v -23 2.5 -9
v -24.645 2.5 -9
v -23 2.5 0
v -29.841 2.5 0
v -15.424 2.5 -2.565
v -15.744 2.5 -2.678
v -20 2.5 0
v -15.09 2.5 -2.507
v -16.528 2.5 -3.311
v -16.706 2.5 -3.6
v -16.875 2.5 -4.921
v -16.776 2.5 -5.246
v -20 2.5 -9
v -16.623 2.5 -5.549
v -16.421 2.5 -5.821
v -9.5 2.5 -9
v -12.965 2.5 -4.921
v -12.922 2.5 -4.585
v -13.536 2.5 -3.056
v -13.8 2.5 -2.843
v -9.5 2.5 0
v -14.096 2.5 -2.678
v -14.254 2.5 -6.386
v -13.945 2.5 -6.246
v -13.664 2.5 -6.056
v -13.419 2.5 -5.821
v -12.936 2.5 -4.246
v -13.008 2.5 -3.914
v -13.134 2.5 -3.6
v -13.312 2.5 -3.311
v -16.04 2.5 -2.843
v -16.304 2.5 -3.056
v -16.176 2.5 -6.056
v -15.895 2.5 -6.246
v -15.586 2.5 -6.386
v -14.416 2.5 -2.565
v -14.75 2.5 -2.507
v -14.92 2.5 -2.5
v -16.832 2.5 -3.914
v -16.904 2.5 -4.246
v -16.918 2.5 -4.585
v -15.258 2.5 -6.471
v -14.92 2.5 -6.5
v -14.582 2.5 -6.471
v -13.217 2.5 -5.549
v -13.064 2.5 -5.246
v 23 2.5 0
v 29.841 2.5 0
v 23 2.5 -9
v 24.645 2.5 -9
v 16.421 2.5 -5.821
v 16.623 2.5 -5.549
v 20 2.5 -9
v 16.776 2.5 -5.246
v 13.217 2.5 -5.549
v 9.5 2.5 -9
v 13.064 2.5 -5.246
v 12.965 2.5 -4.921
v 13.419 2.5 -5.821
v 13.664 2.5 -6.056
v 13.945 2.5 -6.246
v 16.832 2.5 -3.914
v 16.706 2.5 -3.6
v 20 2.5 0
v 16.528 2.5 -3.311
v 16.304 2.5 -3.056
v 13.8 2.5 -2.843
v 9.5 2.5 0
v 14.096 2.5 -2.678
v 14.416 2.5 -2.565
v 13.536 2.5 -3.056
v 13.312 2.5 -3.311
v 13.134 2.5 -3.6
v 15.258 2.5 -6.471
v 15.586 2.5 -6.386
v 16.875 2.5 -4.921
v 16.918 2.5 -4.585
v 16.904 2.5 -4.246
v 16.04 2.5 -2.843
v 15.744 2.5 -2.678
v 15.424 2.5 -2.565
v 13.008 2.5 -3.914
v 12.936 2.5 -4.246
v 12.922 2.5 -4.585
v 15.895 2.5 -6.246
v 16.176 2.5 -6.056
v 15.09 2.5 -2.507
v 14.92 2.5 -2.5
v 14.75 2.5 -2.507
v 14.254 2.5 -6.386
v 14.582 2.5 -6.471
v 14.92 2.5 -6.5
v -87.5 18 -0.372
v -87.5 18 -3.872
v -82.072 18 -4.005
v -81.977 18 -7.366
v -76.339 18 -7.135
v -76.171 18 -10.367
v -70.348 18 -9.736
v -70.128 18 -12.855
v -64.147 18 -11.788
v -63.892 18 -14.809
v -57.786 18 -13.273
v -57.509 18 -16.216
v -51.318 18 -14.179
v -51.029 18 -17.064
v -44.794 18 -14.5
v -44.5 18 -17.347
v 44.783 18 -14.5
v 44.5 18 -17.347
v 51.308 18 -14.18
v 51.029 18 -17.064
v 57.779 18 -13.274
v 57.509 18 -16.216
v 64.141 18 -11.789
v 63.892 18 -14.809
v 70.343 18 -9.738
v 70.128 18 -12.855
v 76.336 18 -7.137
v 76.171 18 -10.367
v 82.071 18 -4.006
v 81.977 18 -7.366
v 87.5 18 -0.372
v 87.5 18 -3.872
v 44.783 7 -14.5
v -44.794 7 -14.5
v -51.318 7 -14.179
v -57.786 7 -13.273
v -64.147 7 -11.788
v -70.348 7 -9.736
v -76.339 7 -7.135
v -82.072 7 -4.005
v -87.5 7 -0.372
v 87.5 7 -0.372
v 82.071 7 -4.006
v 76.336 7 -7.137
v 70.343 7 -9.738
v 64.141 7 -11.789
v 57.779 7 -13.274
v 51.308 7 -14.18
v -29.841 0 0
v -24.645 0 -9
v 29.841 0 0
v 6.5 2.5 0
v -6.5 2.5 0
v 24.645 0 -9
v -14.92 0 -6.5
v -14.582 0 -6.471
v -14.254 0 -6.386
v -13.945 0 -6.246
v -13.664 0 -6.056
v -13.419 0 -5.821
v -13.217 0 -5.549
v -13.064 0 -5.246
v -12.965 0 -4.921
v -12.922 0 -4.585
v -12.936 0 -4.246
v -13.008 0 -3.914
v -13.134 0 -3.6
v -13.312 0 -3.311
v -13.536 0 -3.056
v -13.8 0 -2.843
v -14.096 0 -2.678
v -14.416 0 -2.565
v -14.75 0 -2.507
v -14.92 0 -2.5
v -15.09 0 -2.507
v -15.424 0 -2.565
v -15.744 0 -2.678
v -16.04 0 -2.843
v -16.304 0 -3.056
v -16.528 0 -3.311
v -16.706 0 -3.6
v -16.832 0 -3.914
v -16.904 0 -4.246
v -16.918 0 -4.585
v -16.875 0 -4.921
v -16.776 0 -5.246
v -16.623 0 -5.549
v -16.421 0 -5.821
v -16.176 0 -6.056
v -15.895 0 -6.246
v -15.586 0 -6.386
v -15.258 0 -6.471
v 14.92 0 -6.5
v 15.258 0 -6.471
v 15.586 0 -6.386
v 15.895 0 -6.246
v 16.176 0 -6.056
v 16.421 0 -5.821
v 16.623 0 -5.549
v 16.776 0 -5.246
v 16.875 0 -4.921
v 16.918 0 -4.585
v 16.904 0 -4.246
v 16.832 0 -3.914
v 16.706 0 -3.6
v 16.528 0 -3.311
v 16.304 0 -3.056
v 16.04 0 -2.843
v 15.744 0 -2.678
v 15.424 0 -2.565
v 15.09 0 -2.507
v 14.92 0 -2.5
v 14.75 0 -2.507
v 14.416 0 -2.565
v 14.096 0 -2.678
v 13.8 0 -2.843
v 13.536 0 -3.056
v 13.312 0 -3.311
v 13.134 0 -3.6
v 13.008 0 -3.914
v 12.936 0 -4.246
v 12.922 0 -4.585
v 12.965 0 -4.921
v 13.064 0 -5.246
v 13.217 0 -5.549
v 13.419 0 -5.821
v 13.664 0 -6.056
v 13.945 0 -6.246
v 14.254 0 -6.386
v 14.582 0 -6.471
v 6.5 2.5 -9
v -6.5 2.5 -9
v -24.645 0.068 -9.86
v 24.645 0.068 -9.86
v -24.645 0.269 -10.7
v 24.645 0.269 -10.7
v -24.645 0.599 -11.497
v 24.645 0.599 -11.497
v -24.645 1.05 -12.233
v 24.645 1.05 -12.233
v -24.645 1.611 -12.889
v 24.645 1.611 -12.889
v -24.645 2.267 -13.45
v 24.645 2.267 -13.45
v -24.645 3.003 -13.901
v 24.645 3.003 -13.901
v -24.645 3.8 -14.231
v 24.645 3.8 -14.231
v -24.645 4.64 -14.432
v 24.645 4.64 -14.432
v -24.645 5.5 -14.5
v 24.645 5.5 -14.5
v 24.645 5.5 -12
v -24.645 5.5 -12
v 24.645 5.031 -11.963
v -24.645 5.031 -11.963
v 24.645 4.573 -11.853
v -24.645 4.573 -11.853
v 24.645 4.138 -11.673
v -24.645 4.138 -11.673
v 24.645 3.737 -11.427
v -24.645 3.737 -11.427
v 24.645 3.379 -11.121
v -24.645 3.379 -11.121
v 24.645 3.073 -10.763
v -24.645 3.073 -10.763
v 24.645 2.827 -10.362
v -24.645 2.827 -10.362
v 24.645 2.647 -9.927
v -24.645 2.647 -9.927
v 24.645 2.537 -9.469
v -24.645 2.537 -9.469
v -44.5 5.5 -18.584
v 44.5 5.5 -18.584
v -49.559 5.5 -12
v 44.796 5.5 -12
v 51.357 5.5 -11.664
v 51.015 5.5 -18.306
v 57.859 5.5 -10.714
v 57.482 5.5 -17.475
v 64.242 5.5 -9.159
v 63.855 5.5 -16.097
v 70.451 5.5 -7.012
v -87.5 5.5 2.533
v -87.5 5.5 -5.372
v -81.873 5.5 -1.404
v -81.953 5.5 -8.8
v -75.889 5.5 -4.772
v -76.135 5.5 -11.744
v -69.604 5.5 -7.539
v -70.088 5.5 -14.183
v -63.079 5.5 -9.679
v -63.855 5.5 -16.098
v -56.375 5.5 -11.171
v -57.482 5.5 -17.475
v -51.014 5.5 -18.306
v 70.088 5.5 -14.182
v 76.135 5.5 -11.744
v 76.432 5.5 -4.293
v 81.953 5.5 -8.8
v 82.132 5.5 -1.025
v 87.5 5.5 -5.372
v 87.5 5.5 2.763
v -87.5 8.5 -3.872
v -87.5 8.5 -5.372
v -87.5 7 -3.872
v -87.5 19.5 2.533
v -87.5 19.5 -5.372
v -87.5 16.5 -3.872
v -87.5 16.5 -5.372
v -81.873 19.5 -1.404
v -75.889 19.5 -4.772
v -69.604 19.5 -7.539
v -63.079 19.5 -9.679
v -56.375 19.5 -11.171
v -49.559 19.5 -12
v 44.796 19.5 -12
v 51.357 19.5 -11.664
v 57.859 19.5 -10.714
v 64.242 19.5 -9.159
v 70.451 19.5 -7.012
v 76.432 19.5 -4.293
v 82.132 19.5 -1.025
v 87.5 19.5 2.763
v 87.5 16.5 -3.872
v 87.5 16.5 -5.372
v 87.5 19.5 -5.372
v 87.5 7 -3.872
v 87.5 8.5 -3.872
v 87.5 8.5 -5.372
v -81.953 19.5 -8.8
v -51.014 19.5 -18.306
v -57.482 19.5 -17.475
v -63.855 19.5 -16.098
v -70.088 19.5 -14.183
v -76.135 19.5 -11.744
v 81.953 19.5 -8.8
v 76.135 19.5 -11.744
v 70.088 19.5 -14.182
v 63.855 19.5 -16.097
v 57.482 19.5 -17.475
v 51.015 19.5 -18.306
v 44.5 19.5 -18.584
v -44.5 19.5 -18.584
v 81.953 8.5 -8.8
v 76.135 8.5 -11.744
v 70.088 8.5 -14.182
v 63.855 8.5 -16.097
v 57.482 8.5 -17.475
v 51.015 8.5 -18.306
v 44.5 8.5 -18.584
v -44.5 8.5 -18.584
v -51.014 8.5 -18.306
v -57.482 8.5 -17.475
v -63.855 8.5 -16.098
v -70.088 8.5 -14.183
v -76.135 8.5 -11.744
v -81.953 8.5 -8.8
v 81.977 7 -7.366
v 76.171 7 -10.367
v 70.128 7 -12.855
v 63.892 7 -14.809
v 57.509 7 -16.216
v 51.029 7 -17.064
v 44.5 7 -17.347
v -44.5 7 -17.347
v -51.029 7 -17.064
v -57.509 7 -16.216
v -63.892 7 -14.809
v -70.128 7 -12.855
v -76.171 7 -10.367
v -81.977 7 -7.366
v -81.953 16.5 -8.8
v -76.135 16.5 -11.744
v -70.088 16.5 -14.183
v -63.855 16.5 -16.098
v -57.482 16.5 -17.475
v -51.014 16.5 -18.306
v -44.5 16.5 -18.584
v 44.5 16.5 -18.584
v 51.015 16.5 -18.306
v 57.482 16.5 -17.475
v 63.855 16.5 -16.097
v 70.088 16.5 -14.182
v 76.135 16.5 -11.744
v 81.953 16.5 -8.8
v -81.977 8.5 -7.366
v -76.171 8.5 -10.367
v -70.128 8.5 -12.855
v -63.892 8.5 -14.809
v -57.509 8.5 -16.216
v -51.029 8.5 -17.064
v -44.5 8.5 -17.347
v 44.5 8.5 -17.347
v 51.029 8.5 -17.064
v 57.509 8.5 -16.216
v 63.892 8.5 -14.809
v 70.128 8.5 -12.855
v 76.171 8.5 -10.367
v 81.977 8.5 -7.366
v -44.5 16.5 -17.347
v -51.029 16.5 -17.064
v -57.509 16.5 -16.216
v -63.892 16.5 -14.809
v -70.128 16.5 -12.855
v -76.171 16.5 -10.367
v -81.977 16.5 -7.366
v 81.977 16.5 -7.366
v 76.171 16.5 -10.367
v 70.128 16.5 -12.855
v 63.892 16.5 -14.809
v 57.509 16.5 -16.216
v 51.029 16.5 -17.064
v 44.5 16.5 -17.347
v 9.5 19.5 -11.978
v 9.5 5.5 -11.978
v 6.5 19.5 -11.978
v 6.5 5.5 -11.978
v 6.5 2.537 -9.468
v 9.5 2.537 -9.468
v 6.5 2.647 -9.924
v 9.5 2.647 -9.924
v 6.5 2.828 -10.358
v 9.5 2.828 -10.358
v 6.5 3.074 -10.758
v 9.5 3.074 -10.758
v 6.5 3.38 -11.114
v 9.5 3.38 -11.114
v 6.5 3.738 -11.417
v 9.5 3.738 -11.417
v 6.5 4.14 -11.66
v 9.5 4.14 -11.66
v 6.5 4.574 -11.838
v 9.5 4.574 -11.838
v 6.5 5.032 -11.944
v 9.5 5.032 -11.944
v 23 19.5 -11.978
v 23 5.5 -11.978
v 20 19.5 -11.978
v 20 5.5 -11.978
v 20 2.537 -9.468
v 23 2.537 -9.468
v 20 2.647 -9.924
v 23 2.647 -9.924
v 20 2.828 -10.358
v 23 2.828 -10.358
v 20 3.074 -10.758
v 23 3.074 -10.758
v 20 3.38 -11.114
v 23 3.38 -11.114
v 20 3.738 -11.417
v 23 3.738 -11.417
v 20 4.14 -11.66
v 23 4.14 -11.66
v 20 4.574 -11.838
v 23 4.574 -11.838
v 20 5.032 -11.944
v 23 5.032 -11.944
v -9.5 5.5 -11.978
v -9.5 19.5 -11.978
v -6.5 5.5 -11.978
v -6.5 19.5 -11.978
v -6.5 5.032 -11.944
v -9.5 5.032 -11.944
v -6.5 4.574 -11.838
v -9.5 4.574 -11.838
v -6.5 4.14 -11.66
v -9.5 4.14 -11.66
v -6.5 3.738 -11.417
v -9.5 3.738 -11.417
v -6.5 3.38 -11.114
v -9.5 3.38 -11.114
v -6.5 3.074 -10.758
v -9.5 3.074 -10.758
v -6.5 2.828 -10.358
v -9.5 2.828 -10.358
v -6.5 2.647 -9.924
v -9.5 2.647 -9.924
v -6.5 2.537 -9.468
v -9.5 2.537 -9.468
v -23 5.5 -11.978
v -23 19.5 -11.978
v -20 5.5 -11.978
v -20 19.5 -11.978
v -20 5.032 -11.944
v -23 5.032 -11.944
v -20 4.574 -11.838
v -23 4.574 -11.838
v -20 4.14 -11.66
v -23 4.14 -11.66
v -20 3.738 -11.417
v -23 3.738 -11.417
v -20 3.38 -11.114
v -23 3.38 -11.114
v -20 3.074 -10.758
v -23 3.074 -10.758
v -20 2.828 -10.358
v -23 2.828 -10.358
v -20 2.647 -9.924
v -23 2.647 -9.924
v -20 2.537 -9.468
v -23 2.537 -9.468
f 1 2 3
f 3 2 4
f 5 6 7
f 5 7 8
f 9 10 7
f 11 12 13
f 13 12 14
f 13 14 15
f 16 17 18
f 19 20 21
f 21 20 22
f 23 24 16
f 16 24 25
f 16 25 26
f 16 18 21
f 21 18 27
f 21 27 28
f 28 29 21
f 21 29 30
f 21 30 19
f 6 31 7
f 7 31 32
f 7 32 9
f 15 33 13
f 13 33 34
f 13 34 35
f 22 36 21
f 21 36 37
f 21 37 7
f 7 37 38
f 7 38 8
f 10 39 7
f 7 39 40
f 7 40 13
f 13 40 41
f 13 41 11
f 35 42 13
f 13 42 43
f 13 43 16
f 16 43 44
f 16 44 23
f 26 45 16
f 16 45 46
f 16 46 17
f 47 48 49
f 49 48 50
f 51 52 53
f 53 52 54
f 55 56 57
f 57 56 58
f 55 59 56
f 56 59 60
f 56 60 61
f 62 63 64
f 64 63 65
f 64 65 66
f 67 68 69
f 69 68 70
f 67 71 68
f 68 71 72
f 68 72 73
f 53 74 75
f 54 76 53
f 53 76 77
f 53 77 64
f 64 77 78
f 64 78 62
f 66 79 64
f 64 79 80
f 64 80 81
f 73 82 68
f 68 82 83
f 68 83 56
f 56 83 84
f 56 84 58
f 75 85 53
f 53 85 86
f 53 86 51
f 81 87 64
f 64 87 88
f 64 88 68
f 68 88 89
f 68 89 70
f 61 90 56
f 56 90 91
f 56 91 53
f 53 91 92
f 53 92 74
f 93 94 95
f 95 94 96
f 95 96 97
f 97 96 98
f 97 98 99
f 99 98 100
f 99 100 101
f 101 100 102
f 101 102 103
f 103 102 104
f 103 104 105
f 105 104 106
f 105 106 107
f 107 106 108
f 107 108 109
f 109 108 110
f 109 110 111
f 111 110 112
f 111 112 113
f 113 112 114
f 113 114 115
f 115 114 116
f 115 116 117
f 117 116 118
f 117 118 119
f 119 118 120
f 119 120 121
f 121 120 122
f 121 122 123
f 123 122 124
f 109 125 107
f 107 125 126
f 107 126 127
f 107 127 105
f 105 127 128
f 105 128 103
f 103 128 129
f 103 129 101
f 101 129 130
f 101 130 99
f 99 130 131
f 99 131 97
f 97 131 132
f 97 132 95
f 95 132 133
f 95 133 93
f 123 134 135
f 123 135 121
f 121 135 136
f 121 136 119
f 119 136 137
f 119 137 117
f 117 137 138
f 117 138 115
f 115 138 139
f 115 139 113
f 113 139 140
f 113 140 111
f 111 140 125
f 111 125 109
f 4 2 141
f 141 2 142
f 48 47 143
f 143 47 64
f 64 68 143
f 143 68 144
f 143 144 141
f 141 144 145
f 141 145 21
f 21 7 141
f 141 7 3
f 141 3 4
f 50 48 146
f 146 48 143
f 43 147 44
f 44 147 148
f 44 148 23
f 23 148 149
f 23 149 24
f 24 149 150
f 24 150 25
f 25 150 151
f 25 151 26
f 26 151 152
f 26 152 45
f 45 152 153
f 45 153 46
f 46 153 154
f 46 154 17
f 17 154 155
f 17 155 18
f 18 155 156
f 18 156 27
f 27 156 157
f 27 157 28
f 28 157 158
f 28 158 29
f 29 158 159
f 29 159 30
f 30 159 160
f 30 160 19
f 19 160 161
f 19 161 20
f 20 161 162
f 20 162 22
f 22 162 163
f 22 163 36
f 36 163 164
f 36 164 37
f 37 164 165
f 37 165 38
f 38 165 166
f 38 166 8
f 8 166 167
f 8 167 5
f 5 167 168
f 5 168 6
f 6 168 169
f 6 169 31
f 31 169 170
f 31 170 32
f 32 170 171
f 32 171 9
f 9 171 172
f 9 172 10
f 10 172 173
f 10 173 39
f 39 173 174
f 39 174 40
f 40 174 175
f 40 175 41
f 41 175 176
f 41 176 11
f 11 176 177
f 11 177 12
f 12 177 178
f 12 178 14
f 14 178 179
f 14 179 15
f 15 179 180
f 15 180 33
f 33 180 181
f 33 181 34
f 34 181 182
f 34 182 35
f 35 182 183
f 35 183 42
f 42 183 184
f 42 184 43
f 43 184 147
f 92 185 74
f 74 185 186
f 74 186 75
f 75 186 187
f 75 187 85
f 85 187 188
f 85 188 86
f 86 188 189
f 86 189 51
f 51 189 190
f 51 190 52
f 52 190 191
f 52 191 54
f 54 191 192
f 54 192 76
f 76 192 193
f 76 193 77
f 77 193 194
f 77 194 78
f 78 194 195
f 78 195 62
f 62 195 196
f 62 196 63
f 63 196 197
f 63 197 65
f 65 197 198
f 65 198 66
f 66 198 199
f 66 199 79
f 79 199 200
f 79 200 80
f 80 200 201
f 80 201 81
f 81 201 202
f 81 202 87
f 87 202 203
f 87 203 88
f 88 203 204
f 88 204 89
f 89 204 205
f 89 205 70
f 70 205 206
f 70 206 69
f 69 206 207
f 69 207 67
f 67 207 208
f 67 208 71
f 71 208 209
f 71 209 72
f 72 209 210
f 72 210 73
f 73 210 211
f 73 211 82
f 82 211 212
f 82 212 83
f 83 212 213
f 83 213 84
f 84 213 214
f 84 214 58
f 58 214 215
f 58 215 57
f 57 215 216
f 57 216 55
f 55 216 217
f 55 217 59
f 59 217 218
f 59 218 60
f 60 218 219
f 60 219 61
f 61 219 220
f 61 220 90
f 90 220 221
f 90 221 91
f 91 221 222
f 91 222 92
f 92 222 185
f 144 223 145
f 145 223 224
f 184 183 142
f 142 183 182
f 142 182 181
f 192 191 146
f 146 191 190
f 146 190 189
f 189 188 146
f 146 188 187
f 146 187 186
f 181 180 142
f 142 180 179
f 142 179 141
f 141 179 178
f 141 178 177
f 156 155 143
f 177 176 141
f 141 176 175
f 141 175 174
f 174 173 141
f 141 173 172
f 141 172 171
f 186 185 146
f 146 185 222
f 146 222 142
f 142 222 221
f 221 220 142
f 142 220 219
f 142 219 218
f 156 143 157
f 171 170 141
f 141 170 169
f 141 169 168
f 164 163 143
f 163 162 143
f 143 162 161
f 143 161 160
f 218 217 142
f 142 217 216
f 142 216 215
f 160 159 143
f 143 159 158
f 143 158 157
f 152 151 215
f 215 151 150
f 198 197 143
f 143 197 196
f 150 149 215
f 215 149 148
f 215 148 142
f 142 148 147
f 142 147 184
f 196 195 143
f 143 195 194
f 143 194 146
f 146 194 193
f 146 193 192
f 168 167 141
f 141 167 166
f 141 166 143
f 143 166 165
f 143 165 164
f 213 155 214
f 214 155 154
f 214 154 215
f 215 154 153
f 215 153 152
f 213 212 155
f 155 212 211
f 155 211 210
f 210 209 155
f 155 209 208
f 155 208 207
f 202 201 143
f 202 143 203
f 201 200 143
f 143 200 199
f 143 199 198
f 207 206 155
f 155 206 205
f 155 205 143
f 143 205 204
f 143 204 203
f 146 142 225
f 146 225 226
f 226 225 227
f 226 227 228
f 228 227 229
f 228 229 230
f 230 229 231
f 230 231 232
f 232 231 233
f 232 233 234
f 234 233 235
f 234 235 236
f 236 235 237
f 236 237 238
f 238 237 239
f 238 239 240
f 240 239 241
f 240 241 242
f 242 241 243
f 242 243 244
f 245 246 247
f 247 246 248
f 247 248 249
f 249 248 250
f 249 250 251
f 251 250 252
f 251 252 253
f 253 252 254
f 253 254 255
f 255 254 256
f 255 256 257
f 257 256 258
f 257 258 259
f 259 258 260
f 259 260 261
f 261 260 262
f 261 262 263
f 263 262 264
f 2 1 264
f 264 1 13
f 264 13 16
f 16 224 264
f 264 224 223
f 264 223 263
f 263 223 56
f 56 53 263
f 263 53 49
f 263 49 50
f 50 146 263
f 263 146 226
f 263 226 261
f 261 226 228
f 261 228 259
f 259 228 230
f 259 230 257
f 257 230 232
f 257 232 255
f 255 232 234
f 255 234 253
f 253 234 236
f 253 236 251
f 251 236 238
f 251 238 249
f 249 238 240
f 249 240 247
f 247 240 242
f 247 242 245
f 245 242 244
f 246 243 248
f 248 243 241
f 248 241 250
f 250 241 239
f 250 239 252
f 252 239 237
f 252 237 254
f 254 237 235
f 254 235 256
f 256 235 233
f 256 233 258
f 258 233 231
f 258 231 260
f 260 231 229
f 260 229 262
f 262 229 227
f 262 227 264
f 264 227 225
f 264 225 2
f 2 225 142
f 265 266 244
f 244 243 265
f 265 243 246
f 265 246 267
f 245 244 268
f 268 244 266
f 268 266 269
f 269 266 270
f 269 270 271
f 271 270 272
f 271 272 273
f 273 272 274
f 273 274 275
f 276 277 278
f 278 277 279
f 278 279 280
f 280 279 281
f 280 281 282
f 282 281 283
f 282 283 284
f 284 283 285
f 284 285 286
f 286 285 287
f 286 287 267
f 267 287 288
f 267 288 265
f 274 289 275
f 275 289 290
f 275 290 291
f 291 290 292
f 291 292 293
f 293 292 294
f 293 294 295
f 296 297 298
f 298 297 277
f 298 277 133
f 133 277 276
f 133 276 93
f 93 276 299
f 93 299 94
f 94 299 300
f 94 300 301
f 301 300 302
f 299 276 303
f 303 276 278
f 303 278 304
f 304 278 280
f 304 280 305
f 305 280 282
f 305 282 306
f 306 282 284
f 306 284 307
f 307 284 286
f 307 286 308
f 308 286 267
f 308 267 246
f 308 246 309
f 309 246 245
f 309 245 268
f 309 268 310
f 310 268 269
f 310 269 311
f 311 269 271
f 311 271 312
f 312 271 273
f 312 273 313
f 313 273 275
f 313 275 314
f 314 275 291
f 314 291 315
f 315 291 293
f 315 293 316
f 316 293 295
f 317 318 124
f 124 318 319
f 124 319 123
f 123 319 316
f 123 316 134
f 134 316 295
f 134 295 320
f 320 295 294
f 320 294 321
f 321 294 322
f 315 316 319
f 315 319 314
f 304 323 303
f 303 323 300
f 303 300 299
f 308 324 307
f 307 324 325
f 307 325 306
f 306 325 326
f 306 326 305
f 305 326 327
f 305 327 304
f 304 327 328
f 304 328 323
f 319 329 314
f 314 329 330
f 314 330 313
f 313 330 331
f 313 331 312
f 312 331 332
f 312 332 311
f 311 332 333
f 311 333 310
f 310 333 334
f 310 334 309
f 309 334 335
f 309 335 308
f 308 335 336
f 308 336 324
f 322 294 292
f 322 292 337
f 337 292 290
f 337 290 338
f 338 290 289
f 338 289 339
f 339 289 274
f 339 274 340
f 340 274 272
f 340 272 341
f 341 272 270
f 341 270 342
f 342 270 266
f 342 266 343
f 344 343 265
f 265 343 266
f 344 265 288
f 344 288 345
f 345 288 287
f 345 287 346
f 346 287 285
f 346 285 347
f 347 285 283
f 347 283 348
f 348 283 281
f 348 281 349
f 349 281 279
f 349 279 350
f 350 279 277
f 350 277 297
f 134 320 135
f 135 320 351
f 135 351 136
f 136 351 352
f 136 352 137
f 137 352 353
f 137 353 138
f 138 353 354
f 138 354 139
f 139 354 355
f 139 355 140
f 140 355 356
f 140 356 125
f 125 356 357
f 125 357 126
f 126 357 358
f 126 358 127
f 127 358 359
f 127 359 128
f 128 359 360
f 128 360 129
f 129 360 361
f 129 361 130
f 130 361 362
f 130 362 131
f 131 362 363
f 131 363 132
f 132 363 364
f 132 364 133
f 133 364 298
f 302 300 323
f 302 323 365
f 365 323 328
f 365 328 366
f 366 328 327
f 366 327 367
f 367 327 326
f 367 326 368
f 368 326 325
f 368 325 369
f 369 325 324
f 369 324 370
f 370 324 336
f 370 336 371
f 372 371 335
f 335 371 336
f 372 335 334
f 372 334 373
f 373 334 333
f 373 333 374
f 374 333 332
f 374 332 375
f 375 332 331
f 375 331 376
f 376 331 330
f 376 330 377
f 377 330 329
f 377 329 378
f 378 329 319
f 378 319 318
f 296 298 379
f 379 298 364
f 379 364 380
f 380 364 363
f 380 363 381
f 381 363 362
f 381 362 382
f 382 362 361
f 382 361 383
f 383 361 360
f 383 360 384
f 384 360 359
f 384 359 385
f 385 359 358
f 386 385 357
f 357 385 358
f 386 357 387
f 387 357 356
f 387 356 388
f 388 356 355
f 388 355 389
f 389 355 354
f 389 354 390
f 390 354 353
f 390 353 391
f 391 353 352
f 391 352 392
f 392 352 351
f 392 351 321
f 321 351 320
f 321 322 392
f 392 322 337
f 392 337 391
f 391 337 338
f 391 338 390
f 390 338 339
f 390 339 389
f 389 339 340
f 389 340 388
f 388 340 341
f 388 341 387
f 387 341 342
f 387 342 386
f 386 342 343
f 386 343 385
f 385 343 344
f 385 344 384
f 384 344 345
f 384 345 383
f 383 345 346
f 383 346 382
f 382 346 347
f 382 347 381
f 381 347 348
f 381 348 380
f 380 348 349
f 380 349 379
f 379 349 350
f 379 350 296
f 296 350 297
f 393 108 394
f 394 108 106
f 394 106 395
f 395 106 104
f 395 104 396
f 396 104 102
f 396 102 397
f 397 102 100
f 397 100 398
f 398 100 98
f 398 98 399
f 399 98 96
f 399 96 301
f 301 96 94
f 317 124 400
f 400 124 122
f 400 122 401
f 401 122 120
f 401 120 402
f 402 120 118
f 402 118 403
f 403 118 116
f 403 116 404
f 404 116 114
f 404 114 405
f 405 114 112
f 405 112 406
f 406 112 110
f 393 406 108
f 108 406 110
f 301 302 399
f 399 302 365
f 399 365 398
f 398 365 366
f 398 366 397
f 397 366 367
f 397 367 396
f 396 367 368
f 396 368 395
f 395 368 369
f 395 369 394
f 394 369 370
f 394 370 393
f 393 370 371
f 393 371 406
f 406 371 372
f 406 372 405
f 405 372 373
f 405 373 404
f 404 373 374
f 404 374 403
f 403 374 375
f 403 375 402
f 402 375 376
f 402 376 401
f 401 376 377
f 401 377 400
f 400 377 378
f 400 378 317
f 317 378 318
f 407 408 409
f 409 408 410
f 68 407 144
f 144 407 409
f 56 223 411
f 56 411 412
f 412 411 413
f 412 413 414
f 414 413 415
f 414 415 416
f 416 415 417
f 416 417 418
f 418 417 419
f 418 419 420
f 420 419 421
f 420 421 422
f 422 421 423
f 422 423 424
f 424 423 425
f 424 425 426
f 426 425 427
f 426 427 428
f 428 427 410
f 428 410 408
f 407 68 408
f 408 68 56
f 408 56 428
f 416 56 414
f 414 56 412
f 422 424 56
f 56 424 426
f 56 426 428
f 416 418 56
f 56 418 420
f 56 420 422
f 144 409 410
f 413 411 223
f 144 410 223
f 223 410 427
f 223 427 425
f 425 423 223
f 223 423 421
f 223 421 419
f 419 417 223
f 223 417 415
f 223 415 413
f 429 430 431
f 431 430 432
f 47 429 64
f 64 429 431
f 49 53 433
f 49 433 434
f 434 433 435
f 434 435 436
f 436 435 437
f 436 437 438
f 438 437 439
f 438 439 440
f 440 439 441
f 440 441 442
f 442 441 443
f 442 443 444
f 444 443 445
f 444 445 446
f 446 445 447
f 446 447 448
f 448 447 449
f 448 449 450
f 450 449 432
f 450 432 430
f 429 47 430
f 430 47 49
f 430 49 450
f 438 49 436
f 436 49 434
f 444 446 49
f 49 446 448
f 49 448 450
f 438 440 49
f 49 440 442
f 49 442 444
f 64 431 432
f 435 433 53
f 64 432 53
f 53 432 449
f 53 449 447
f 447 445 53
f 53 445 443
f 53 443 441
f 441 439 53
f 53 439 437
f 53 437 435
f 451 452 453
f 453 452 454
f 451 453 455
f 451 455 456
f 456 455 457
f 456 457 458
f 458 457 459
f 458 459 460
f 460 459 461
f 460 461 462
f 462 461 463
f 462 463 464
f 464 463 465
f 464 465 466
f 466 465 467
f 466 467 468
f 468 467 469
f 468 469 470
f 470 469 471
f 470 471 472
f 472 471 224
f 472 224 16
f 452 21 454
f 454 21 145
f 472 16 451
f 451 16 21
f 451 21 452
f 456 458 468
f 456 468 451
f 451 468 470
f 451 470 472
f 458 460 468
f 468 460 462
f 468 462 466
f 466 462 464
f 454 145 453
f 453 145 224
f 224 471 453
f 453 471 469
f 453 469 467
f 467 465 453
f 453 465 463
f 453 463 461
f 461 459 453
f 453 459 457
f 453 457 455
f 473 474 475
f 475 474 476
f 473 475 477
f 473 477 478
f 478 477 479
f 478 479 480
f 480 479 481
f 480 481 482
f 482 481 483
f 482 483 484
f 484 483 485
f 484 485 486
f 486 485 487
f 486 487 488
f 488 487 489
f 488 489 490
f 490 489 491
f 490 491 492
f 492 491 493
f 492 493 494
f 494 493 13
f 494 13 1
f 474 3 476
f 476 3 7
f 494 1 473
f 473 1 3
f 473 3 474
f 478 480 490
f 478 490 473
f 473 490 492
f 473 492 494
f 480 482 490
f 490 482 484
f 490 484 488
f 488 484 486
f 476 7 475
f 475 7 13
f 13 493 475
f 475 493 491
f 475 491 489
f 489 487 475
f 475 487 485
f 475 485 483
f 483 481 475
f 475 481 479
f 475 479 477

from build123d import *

# Parameters (mm, degrees)
SKETCH1_R                = 2
BOSS_EXTRUDE1_DEPTH      = 2.5
BOSS_EXTRUDE2_DEPTH      = 24.645
BOSS_EXTRUDE2_DEPTH_BACK = 24.645
SKETCH4_W                = 49.29
SKETCH4_H                = 2.5
BOSS_EXTRUDE4_DEPTH      = 14
BOSS_EXTRUDE6_DEPTH      = 1.5
BOSS_EXTRUDE7_START      = 12.5
BOSS_EXTRUDE7_DEPTH      = 1.5
BOSS_EXTRUDE8_START      = 1.5
BOSS_EXTRUDE8_DEPTH      = 1.5
BOSS_EXTRUDE9_START      = 11
BOSS_EXTRUDE9_DEPTH      = 1.5
BOSS_EXTRUDE10_START     = 6.5
BOSS_EXTRUDE10_DEPTH     = 3
BOSS_EXTRUDE11_START     = 20
BOSS_EXTRUDE11_DEPTH     = 3


with BuildPart() as part:
    # Sketch1 → Boss-Extrude1 (new body)
    with BuildSketch(Plane(origin=(0, 0, 0), x_dir=(1, 0, 0), z_dir=(0, 1, 0))):
        Polygon((-29.841152423, 0), (-24.645, 9), (24.645, 9), (29.841152423, 0), align=None)
        with Locations(Location((-14.92, 4.5, 0), (0, 0, 270))):
            Circle(SKETCH1_R, mode=Mode.SUBTRACT)
        with Locations(Location((14.92, 4.5, 0), (0, 0, 270))):
            Circle(SKETCH1_R, mode=Mode.SUBTRACT)
    extrude(amount=BOSS_EXTRUDE1_DEPTH)

    # Sketch3 → Boss-Extrude2 (add, two sides: drawn at the far end of the back side and taken through both)
    with BuildSketch(Plane(origin=(0, 0, 0), x_dir=(0, 0, -1), z_dir=(1, 0, 0)).offset(-BOSS_EXTRUDE2_DEPTH_BACK)):
        with BuildLine():
            Line((9, 0), (9, 2.5))
            ThreePointArc((9, 2.5), (11.121320344, 3.378679656), (12, 5.5))
            Line((12, 5.5), (14.5, 5.5))
            ThreePointArc((14.5, 5.5), (12.889087297, 1.610912703), (9, 0))
        make_face()
    extrude(amount=BOSS_EXTRUDE2_DEPTH + BOSS_EXTRUDE2_DEPTH_BACK)

    # Sketch4 → Boss-Extrude4 (add)
    with BuildSketch(Plane(origin=(0, 5.5, 0), x_dir=(1, 0, 0), z_dir=(0, 1, 0))):
        with BuildLine():
            Line((-49.558586772, 12), (-24.645, 12))
            Line((-24.645, 12), (-24.645, 14.5))
            Line((-24.645, 14.5), (-44.793833293, 14.5))
            ThreePointArc((-44.793833293, 14.5), (-67.270294591, 10.832042119), (-87.5, 0.372393629))
            Line((-87.5, 0.372393629), (-87.5, -2.532989082))
            ThreePointArc((-87.5, -2.532989082), (-69.603961511, 7.539151784), (-49.558586772, 12))
        make_face()
        with Locations((0, 13.25)):
            Rectangle(SKETCH4_W, SKETCH4_H)
        with BuildLine():
            Line((24.645, 12), (44.795929756, 12))
            ThreePointArc((44.795929756, 12), (67.371893328, 8.158628084), (87.5, -2.763349356))
            Line((87.5, -2.763349356), (87.5, 0.372340835))
            ThreePointArc((87.5, 0.372340835), (67.265225258, 10.833674125), (44.783151118, 14.5))
            Line((44.783151118, 14.5), (24.645, 14.5))
            Line((24.645, 14.5), (24.645, 12))
        make_face()
    extrude(amount=BOSS_EXTRUDE4_DEPTH)

    # Sketch4<4> → Boss-Extrude6 (add)
    with BuildSketch(Plane(origin=(0, 5.5, 0), x_dir=(1, 0, 0), z_dir=(0, 1, 0))):
        with BuildLine():
            ThreePointArc((44.783151118, 14.5), (67.265225258, 10.833674125), (87.5, 0.372340835))
            Line((87.5, 0.372340835), (87.5, 3.872340835))
            ThreePointArc((87.5, 3.872340835), (67.030937137, 13.899537079), (44.500036985, 17.347106846))
            Line((44.500036985, 17.347106846), (-44.499963015, 17.347150533))
            ThreePointArc((-44.499963015, 17.347150533), (-67.030900409, 13.89959402), (-87.5, 3.872393629))
            Line((-87.5, 3.872393629), (-87.5, 0.372393629))
            ThreePointArc((-87.5, 0.372393629), (-67.270294591, 10.832042119), (-44.793833293, 14.5))
            Line((-44.793833293, 14.5), (-24.645, 14.5))
            Line((-24.645, 14.5), (24.645, 14.5))
            Line((24.645, 14.5), (44.783151118, 14.5))
        make_face()
        with BuildLine():
            ThreePointArc((87.5, 3.872340835), (67.030937113, 13.899537086), (44.500036985, 17.347106846))
            Line((44.500036985, 17.347106846), (-44.499963015, 17.347150533))
            ThreePointArc((-44.499963015, 17.347150533), (-67.030900409, 13.89959402), (-87.5, 3.872393629))
            Line((-87.5, 3.872393629), (-87.5, 5.372393629))
            ThreePointArc((-87.5, 5.372393629), (-66.991859053, 15.206396924), (-44.499962408, 18.583681514))
            Line((-44.499962408, 18.583681514), (44.500037592, 18.583637828))
            ThreePointArc((44.500037592, 18.583637828), (66.991896325, 15.206339771), (87.5, 5.372340835))
            Line((87.5, 5.372340835), (87.5, 3.872340835))
        make_face()
    extrude(amount=BOSS_EXTRUDE6_DEPTH)

    # Sketch4<5> → Boss-Extrude7 (add)
    with BuildSketch(Plane(origin=(0, 5.5, 0), x_dir=(1, 0, 0), z_dir=(0, 1, 0)).offset(BOSS_EXTRUDE7_START)):
        with BuildLine():
            ThreePointArc((44.783151118, 14.5), (67.265225258, 10.833674125), (87.5, 0.372340835))
            Line((87.5, 0.372340835), (87.5, 3.872340835))
            ThreePointArc((87.5, 3.872340835), (67.030937137, 13.899537079), (44.500036985, 17.347106846))
            Line((44.500036985, 17.347106846), (-44.499963015, 17.347150533))
            ThreePointArc((-44.499963015, 17.347150533), (-67.030900409, 13.89959402), (-87.5, 3.872393629))
            Line((-87.5, 3.872393629), (-87.5, 0.372393629))
            ThreePointArc((-87.5, 0.372393629), (-67.270294591, 10.832042119), (-44.793833293, 14.5))
            Line((-44.793833293, 14.5), (-24.645, 14.5))
            Line((-24.645, 14.5), (24.645, 14.5))
            Line((24.645, 14.5), (44.783151118, 14.5))
        make_face()
        with BuildLine():
            ThreePointArc((87.5, 3.872340835), (67.030937113, 13.899537086), (44.500036985, 17.347106846))
            Line((44.500036985, 17.347106846), (-44.499963015, 17.347150533))
            ThreePointArc((-44.499963015, 17.347150533), (-67.030900409, 13.89959402), (-87.5, 3.872393629))
            Line((-87.5, 3.872393629), (-87.5, 5.372393629))
            ThreePointArc((-87.5, 5.372393629), (-66.991859053, 15.206396924), (-44.499962408, 18.583681514))
            Line((-44.499962408, 18.583681514), (44.500037592, 18.583637828))
            ThreePointArc((44.500037592, 18.583637828), (66.991896325, 15.206339771), (87.5, 5.372340835))
            Line((87.5, 5.372340835), (87.5, 3.872340835))
        make_face()
    extrude(amount=BOSS_EXTRUDE7_DEPTH)

    # Sketch4<6> → Boss-Extrude8 (add)
    with BuildSketch(Plane(origin=(0, 5.5, 0), x_dir=(1, 0, 0), z_dir=(0, 1, 0)).offset(BOSS_EXTRUDE8_START)):
        with BuildLine():
            ThreePointArc((87.5, 3.872340835), (67.030937113, 13.899537086), (44.500036985, 17.347106846))
            Line((44.500036985, 17.347106846), (-44.499963015, 17.347150533))
            ThreePointArc((-44.499963015, 17.347150533), (-67.030900409, 13.89959402), (-87.5, 3.872393629))
            Line((-87.5, 3.872393629), (-87.5, 5.372393629))
            ThreePointArc((-87.5, 5.372393629), (-66.991859053, 15.206396924), (-44.499962408, 18.583681514))
            Line((-44.499962408, 18.583681514), (44.500037592, 18.583637828))
            ThreePointArc((44.500037592, 18.583637828), (66.991896325, 15.206339771), (87.5, 5.372340835))
            Line((87.5, 5.372340835), (87.5, 3.872340835))
        make_face()
    extrude(amount=BOSS_EXTRUDE8_DEPTH)

    # Sketch4<8> → Boss-Extrude9 (add)
    with BuildSketch(Plane(origin=(0, 5.5, 0), x_dir=(1, 0, 0), z_dir=(0, 1, 0)).offset(BOSS_EXTRUDE9_START)):
        with BuildLine():
            ThreePointArc((87.5, 3.872340835), (67.030937113, 13.899537086), (44.500036985, 17.347106846))
            Line((44.500036985, 17.347106846), (-44.499963015, 17.347150533))
            ThreePointArc((-44.499963015, 17.347150533), (-67.030900409, 13.89959402), (-87.5, 3.872393629))
            Line((-87.5, 3.872393629), (-87.5, 5.372393629))
            ThreePointArc((-87.5, 5.372393629), (-66.991859053, 15.206396924), (-44.499962408, 18.583681514))
            Line((-44.499962408, 18.583681514), (44.500037592, 18.583637828))
            ThreePointArc((44.500037592, 18.583637828), (66.991896325, 15.206339771), (87.5, 5.372340835))
            Line((87.5, 5.372340835), (87.5, 3.872340835))
        make_face()
    extrude(amount=BOSS_EXTRUDE9_DEPTH)

    # Sketch5 → Boss-Extrude10 (add)
    with BuildSketch(Plane(origin=(0, 0, 0), x_dir=(0, 0, -1), z_dir=(1, 0, 0)).offset(BOSS_EXTRUDE10_START)):
        with BuildLine():
            Line((11.977989331, 19.5), (0, 2.5))
            Line((0, 2.5), (9, 2.5))
            ThreePointArc((9, 2.5), (11.113552723, 3.380024256), (11.977989331, 5.5))
            Line((11.977989331, 5.5), (11.977989331, 19.5))
        make_face()
    boss_extrude10 = extrude(amount=BOSS_EXTRUDE10_DEPTH)

    # Sketch5<3> → Boss-Extrude11 (add)
    with BuildSketch(Plane(origin=(0, 0, 0), x_dir=(0, 0, -1), z_dir=(1, 0, 0)).offset(BOSS_EXTRUDE11_START)):
        with BuildLine():
            Line((11.977989331, 19.5), (0, 2.5))
            Line((0, 2.5), (9, 2.5))
            ThreePointArc((9, 2.5), (11.113552723, 3.380024256), (11.977989331, 5.5))
            Line((11.977989331, 5.5), (11.977989331, 19.5))
        make_face()
    boss_extrude11 = extrude(amount=BOSS_EXTRUDE11_DEPTH)

    # Mirror1: Boss-Extrude10, Boss-Extrude11 across plane
    add(boss_extrude10.mirror(Plane(origin=(0, 0, 0), x_dir=(0, 0, 1), z_dir=(1, 0, 0))))
    add(boss_extrude11.mirror(Plane(origin=(0, 0, 0), x_dir=(0, 0, 1), z_dir=(1, 0, 0))))


solid = part.part
